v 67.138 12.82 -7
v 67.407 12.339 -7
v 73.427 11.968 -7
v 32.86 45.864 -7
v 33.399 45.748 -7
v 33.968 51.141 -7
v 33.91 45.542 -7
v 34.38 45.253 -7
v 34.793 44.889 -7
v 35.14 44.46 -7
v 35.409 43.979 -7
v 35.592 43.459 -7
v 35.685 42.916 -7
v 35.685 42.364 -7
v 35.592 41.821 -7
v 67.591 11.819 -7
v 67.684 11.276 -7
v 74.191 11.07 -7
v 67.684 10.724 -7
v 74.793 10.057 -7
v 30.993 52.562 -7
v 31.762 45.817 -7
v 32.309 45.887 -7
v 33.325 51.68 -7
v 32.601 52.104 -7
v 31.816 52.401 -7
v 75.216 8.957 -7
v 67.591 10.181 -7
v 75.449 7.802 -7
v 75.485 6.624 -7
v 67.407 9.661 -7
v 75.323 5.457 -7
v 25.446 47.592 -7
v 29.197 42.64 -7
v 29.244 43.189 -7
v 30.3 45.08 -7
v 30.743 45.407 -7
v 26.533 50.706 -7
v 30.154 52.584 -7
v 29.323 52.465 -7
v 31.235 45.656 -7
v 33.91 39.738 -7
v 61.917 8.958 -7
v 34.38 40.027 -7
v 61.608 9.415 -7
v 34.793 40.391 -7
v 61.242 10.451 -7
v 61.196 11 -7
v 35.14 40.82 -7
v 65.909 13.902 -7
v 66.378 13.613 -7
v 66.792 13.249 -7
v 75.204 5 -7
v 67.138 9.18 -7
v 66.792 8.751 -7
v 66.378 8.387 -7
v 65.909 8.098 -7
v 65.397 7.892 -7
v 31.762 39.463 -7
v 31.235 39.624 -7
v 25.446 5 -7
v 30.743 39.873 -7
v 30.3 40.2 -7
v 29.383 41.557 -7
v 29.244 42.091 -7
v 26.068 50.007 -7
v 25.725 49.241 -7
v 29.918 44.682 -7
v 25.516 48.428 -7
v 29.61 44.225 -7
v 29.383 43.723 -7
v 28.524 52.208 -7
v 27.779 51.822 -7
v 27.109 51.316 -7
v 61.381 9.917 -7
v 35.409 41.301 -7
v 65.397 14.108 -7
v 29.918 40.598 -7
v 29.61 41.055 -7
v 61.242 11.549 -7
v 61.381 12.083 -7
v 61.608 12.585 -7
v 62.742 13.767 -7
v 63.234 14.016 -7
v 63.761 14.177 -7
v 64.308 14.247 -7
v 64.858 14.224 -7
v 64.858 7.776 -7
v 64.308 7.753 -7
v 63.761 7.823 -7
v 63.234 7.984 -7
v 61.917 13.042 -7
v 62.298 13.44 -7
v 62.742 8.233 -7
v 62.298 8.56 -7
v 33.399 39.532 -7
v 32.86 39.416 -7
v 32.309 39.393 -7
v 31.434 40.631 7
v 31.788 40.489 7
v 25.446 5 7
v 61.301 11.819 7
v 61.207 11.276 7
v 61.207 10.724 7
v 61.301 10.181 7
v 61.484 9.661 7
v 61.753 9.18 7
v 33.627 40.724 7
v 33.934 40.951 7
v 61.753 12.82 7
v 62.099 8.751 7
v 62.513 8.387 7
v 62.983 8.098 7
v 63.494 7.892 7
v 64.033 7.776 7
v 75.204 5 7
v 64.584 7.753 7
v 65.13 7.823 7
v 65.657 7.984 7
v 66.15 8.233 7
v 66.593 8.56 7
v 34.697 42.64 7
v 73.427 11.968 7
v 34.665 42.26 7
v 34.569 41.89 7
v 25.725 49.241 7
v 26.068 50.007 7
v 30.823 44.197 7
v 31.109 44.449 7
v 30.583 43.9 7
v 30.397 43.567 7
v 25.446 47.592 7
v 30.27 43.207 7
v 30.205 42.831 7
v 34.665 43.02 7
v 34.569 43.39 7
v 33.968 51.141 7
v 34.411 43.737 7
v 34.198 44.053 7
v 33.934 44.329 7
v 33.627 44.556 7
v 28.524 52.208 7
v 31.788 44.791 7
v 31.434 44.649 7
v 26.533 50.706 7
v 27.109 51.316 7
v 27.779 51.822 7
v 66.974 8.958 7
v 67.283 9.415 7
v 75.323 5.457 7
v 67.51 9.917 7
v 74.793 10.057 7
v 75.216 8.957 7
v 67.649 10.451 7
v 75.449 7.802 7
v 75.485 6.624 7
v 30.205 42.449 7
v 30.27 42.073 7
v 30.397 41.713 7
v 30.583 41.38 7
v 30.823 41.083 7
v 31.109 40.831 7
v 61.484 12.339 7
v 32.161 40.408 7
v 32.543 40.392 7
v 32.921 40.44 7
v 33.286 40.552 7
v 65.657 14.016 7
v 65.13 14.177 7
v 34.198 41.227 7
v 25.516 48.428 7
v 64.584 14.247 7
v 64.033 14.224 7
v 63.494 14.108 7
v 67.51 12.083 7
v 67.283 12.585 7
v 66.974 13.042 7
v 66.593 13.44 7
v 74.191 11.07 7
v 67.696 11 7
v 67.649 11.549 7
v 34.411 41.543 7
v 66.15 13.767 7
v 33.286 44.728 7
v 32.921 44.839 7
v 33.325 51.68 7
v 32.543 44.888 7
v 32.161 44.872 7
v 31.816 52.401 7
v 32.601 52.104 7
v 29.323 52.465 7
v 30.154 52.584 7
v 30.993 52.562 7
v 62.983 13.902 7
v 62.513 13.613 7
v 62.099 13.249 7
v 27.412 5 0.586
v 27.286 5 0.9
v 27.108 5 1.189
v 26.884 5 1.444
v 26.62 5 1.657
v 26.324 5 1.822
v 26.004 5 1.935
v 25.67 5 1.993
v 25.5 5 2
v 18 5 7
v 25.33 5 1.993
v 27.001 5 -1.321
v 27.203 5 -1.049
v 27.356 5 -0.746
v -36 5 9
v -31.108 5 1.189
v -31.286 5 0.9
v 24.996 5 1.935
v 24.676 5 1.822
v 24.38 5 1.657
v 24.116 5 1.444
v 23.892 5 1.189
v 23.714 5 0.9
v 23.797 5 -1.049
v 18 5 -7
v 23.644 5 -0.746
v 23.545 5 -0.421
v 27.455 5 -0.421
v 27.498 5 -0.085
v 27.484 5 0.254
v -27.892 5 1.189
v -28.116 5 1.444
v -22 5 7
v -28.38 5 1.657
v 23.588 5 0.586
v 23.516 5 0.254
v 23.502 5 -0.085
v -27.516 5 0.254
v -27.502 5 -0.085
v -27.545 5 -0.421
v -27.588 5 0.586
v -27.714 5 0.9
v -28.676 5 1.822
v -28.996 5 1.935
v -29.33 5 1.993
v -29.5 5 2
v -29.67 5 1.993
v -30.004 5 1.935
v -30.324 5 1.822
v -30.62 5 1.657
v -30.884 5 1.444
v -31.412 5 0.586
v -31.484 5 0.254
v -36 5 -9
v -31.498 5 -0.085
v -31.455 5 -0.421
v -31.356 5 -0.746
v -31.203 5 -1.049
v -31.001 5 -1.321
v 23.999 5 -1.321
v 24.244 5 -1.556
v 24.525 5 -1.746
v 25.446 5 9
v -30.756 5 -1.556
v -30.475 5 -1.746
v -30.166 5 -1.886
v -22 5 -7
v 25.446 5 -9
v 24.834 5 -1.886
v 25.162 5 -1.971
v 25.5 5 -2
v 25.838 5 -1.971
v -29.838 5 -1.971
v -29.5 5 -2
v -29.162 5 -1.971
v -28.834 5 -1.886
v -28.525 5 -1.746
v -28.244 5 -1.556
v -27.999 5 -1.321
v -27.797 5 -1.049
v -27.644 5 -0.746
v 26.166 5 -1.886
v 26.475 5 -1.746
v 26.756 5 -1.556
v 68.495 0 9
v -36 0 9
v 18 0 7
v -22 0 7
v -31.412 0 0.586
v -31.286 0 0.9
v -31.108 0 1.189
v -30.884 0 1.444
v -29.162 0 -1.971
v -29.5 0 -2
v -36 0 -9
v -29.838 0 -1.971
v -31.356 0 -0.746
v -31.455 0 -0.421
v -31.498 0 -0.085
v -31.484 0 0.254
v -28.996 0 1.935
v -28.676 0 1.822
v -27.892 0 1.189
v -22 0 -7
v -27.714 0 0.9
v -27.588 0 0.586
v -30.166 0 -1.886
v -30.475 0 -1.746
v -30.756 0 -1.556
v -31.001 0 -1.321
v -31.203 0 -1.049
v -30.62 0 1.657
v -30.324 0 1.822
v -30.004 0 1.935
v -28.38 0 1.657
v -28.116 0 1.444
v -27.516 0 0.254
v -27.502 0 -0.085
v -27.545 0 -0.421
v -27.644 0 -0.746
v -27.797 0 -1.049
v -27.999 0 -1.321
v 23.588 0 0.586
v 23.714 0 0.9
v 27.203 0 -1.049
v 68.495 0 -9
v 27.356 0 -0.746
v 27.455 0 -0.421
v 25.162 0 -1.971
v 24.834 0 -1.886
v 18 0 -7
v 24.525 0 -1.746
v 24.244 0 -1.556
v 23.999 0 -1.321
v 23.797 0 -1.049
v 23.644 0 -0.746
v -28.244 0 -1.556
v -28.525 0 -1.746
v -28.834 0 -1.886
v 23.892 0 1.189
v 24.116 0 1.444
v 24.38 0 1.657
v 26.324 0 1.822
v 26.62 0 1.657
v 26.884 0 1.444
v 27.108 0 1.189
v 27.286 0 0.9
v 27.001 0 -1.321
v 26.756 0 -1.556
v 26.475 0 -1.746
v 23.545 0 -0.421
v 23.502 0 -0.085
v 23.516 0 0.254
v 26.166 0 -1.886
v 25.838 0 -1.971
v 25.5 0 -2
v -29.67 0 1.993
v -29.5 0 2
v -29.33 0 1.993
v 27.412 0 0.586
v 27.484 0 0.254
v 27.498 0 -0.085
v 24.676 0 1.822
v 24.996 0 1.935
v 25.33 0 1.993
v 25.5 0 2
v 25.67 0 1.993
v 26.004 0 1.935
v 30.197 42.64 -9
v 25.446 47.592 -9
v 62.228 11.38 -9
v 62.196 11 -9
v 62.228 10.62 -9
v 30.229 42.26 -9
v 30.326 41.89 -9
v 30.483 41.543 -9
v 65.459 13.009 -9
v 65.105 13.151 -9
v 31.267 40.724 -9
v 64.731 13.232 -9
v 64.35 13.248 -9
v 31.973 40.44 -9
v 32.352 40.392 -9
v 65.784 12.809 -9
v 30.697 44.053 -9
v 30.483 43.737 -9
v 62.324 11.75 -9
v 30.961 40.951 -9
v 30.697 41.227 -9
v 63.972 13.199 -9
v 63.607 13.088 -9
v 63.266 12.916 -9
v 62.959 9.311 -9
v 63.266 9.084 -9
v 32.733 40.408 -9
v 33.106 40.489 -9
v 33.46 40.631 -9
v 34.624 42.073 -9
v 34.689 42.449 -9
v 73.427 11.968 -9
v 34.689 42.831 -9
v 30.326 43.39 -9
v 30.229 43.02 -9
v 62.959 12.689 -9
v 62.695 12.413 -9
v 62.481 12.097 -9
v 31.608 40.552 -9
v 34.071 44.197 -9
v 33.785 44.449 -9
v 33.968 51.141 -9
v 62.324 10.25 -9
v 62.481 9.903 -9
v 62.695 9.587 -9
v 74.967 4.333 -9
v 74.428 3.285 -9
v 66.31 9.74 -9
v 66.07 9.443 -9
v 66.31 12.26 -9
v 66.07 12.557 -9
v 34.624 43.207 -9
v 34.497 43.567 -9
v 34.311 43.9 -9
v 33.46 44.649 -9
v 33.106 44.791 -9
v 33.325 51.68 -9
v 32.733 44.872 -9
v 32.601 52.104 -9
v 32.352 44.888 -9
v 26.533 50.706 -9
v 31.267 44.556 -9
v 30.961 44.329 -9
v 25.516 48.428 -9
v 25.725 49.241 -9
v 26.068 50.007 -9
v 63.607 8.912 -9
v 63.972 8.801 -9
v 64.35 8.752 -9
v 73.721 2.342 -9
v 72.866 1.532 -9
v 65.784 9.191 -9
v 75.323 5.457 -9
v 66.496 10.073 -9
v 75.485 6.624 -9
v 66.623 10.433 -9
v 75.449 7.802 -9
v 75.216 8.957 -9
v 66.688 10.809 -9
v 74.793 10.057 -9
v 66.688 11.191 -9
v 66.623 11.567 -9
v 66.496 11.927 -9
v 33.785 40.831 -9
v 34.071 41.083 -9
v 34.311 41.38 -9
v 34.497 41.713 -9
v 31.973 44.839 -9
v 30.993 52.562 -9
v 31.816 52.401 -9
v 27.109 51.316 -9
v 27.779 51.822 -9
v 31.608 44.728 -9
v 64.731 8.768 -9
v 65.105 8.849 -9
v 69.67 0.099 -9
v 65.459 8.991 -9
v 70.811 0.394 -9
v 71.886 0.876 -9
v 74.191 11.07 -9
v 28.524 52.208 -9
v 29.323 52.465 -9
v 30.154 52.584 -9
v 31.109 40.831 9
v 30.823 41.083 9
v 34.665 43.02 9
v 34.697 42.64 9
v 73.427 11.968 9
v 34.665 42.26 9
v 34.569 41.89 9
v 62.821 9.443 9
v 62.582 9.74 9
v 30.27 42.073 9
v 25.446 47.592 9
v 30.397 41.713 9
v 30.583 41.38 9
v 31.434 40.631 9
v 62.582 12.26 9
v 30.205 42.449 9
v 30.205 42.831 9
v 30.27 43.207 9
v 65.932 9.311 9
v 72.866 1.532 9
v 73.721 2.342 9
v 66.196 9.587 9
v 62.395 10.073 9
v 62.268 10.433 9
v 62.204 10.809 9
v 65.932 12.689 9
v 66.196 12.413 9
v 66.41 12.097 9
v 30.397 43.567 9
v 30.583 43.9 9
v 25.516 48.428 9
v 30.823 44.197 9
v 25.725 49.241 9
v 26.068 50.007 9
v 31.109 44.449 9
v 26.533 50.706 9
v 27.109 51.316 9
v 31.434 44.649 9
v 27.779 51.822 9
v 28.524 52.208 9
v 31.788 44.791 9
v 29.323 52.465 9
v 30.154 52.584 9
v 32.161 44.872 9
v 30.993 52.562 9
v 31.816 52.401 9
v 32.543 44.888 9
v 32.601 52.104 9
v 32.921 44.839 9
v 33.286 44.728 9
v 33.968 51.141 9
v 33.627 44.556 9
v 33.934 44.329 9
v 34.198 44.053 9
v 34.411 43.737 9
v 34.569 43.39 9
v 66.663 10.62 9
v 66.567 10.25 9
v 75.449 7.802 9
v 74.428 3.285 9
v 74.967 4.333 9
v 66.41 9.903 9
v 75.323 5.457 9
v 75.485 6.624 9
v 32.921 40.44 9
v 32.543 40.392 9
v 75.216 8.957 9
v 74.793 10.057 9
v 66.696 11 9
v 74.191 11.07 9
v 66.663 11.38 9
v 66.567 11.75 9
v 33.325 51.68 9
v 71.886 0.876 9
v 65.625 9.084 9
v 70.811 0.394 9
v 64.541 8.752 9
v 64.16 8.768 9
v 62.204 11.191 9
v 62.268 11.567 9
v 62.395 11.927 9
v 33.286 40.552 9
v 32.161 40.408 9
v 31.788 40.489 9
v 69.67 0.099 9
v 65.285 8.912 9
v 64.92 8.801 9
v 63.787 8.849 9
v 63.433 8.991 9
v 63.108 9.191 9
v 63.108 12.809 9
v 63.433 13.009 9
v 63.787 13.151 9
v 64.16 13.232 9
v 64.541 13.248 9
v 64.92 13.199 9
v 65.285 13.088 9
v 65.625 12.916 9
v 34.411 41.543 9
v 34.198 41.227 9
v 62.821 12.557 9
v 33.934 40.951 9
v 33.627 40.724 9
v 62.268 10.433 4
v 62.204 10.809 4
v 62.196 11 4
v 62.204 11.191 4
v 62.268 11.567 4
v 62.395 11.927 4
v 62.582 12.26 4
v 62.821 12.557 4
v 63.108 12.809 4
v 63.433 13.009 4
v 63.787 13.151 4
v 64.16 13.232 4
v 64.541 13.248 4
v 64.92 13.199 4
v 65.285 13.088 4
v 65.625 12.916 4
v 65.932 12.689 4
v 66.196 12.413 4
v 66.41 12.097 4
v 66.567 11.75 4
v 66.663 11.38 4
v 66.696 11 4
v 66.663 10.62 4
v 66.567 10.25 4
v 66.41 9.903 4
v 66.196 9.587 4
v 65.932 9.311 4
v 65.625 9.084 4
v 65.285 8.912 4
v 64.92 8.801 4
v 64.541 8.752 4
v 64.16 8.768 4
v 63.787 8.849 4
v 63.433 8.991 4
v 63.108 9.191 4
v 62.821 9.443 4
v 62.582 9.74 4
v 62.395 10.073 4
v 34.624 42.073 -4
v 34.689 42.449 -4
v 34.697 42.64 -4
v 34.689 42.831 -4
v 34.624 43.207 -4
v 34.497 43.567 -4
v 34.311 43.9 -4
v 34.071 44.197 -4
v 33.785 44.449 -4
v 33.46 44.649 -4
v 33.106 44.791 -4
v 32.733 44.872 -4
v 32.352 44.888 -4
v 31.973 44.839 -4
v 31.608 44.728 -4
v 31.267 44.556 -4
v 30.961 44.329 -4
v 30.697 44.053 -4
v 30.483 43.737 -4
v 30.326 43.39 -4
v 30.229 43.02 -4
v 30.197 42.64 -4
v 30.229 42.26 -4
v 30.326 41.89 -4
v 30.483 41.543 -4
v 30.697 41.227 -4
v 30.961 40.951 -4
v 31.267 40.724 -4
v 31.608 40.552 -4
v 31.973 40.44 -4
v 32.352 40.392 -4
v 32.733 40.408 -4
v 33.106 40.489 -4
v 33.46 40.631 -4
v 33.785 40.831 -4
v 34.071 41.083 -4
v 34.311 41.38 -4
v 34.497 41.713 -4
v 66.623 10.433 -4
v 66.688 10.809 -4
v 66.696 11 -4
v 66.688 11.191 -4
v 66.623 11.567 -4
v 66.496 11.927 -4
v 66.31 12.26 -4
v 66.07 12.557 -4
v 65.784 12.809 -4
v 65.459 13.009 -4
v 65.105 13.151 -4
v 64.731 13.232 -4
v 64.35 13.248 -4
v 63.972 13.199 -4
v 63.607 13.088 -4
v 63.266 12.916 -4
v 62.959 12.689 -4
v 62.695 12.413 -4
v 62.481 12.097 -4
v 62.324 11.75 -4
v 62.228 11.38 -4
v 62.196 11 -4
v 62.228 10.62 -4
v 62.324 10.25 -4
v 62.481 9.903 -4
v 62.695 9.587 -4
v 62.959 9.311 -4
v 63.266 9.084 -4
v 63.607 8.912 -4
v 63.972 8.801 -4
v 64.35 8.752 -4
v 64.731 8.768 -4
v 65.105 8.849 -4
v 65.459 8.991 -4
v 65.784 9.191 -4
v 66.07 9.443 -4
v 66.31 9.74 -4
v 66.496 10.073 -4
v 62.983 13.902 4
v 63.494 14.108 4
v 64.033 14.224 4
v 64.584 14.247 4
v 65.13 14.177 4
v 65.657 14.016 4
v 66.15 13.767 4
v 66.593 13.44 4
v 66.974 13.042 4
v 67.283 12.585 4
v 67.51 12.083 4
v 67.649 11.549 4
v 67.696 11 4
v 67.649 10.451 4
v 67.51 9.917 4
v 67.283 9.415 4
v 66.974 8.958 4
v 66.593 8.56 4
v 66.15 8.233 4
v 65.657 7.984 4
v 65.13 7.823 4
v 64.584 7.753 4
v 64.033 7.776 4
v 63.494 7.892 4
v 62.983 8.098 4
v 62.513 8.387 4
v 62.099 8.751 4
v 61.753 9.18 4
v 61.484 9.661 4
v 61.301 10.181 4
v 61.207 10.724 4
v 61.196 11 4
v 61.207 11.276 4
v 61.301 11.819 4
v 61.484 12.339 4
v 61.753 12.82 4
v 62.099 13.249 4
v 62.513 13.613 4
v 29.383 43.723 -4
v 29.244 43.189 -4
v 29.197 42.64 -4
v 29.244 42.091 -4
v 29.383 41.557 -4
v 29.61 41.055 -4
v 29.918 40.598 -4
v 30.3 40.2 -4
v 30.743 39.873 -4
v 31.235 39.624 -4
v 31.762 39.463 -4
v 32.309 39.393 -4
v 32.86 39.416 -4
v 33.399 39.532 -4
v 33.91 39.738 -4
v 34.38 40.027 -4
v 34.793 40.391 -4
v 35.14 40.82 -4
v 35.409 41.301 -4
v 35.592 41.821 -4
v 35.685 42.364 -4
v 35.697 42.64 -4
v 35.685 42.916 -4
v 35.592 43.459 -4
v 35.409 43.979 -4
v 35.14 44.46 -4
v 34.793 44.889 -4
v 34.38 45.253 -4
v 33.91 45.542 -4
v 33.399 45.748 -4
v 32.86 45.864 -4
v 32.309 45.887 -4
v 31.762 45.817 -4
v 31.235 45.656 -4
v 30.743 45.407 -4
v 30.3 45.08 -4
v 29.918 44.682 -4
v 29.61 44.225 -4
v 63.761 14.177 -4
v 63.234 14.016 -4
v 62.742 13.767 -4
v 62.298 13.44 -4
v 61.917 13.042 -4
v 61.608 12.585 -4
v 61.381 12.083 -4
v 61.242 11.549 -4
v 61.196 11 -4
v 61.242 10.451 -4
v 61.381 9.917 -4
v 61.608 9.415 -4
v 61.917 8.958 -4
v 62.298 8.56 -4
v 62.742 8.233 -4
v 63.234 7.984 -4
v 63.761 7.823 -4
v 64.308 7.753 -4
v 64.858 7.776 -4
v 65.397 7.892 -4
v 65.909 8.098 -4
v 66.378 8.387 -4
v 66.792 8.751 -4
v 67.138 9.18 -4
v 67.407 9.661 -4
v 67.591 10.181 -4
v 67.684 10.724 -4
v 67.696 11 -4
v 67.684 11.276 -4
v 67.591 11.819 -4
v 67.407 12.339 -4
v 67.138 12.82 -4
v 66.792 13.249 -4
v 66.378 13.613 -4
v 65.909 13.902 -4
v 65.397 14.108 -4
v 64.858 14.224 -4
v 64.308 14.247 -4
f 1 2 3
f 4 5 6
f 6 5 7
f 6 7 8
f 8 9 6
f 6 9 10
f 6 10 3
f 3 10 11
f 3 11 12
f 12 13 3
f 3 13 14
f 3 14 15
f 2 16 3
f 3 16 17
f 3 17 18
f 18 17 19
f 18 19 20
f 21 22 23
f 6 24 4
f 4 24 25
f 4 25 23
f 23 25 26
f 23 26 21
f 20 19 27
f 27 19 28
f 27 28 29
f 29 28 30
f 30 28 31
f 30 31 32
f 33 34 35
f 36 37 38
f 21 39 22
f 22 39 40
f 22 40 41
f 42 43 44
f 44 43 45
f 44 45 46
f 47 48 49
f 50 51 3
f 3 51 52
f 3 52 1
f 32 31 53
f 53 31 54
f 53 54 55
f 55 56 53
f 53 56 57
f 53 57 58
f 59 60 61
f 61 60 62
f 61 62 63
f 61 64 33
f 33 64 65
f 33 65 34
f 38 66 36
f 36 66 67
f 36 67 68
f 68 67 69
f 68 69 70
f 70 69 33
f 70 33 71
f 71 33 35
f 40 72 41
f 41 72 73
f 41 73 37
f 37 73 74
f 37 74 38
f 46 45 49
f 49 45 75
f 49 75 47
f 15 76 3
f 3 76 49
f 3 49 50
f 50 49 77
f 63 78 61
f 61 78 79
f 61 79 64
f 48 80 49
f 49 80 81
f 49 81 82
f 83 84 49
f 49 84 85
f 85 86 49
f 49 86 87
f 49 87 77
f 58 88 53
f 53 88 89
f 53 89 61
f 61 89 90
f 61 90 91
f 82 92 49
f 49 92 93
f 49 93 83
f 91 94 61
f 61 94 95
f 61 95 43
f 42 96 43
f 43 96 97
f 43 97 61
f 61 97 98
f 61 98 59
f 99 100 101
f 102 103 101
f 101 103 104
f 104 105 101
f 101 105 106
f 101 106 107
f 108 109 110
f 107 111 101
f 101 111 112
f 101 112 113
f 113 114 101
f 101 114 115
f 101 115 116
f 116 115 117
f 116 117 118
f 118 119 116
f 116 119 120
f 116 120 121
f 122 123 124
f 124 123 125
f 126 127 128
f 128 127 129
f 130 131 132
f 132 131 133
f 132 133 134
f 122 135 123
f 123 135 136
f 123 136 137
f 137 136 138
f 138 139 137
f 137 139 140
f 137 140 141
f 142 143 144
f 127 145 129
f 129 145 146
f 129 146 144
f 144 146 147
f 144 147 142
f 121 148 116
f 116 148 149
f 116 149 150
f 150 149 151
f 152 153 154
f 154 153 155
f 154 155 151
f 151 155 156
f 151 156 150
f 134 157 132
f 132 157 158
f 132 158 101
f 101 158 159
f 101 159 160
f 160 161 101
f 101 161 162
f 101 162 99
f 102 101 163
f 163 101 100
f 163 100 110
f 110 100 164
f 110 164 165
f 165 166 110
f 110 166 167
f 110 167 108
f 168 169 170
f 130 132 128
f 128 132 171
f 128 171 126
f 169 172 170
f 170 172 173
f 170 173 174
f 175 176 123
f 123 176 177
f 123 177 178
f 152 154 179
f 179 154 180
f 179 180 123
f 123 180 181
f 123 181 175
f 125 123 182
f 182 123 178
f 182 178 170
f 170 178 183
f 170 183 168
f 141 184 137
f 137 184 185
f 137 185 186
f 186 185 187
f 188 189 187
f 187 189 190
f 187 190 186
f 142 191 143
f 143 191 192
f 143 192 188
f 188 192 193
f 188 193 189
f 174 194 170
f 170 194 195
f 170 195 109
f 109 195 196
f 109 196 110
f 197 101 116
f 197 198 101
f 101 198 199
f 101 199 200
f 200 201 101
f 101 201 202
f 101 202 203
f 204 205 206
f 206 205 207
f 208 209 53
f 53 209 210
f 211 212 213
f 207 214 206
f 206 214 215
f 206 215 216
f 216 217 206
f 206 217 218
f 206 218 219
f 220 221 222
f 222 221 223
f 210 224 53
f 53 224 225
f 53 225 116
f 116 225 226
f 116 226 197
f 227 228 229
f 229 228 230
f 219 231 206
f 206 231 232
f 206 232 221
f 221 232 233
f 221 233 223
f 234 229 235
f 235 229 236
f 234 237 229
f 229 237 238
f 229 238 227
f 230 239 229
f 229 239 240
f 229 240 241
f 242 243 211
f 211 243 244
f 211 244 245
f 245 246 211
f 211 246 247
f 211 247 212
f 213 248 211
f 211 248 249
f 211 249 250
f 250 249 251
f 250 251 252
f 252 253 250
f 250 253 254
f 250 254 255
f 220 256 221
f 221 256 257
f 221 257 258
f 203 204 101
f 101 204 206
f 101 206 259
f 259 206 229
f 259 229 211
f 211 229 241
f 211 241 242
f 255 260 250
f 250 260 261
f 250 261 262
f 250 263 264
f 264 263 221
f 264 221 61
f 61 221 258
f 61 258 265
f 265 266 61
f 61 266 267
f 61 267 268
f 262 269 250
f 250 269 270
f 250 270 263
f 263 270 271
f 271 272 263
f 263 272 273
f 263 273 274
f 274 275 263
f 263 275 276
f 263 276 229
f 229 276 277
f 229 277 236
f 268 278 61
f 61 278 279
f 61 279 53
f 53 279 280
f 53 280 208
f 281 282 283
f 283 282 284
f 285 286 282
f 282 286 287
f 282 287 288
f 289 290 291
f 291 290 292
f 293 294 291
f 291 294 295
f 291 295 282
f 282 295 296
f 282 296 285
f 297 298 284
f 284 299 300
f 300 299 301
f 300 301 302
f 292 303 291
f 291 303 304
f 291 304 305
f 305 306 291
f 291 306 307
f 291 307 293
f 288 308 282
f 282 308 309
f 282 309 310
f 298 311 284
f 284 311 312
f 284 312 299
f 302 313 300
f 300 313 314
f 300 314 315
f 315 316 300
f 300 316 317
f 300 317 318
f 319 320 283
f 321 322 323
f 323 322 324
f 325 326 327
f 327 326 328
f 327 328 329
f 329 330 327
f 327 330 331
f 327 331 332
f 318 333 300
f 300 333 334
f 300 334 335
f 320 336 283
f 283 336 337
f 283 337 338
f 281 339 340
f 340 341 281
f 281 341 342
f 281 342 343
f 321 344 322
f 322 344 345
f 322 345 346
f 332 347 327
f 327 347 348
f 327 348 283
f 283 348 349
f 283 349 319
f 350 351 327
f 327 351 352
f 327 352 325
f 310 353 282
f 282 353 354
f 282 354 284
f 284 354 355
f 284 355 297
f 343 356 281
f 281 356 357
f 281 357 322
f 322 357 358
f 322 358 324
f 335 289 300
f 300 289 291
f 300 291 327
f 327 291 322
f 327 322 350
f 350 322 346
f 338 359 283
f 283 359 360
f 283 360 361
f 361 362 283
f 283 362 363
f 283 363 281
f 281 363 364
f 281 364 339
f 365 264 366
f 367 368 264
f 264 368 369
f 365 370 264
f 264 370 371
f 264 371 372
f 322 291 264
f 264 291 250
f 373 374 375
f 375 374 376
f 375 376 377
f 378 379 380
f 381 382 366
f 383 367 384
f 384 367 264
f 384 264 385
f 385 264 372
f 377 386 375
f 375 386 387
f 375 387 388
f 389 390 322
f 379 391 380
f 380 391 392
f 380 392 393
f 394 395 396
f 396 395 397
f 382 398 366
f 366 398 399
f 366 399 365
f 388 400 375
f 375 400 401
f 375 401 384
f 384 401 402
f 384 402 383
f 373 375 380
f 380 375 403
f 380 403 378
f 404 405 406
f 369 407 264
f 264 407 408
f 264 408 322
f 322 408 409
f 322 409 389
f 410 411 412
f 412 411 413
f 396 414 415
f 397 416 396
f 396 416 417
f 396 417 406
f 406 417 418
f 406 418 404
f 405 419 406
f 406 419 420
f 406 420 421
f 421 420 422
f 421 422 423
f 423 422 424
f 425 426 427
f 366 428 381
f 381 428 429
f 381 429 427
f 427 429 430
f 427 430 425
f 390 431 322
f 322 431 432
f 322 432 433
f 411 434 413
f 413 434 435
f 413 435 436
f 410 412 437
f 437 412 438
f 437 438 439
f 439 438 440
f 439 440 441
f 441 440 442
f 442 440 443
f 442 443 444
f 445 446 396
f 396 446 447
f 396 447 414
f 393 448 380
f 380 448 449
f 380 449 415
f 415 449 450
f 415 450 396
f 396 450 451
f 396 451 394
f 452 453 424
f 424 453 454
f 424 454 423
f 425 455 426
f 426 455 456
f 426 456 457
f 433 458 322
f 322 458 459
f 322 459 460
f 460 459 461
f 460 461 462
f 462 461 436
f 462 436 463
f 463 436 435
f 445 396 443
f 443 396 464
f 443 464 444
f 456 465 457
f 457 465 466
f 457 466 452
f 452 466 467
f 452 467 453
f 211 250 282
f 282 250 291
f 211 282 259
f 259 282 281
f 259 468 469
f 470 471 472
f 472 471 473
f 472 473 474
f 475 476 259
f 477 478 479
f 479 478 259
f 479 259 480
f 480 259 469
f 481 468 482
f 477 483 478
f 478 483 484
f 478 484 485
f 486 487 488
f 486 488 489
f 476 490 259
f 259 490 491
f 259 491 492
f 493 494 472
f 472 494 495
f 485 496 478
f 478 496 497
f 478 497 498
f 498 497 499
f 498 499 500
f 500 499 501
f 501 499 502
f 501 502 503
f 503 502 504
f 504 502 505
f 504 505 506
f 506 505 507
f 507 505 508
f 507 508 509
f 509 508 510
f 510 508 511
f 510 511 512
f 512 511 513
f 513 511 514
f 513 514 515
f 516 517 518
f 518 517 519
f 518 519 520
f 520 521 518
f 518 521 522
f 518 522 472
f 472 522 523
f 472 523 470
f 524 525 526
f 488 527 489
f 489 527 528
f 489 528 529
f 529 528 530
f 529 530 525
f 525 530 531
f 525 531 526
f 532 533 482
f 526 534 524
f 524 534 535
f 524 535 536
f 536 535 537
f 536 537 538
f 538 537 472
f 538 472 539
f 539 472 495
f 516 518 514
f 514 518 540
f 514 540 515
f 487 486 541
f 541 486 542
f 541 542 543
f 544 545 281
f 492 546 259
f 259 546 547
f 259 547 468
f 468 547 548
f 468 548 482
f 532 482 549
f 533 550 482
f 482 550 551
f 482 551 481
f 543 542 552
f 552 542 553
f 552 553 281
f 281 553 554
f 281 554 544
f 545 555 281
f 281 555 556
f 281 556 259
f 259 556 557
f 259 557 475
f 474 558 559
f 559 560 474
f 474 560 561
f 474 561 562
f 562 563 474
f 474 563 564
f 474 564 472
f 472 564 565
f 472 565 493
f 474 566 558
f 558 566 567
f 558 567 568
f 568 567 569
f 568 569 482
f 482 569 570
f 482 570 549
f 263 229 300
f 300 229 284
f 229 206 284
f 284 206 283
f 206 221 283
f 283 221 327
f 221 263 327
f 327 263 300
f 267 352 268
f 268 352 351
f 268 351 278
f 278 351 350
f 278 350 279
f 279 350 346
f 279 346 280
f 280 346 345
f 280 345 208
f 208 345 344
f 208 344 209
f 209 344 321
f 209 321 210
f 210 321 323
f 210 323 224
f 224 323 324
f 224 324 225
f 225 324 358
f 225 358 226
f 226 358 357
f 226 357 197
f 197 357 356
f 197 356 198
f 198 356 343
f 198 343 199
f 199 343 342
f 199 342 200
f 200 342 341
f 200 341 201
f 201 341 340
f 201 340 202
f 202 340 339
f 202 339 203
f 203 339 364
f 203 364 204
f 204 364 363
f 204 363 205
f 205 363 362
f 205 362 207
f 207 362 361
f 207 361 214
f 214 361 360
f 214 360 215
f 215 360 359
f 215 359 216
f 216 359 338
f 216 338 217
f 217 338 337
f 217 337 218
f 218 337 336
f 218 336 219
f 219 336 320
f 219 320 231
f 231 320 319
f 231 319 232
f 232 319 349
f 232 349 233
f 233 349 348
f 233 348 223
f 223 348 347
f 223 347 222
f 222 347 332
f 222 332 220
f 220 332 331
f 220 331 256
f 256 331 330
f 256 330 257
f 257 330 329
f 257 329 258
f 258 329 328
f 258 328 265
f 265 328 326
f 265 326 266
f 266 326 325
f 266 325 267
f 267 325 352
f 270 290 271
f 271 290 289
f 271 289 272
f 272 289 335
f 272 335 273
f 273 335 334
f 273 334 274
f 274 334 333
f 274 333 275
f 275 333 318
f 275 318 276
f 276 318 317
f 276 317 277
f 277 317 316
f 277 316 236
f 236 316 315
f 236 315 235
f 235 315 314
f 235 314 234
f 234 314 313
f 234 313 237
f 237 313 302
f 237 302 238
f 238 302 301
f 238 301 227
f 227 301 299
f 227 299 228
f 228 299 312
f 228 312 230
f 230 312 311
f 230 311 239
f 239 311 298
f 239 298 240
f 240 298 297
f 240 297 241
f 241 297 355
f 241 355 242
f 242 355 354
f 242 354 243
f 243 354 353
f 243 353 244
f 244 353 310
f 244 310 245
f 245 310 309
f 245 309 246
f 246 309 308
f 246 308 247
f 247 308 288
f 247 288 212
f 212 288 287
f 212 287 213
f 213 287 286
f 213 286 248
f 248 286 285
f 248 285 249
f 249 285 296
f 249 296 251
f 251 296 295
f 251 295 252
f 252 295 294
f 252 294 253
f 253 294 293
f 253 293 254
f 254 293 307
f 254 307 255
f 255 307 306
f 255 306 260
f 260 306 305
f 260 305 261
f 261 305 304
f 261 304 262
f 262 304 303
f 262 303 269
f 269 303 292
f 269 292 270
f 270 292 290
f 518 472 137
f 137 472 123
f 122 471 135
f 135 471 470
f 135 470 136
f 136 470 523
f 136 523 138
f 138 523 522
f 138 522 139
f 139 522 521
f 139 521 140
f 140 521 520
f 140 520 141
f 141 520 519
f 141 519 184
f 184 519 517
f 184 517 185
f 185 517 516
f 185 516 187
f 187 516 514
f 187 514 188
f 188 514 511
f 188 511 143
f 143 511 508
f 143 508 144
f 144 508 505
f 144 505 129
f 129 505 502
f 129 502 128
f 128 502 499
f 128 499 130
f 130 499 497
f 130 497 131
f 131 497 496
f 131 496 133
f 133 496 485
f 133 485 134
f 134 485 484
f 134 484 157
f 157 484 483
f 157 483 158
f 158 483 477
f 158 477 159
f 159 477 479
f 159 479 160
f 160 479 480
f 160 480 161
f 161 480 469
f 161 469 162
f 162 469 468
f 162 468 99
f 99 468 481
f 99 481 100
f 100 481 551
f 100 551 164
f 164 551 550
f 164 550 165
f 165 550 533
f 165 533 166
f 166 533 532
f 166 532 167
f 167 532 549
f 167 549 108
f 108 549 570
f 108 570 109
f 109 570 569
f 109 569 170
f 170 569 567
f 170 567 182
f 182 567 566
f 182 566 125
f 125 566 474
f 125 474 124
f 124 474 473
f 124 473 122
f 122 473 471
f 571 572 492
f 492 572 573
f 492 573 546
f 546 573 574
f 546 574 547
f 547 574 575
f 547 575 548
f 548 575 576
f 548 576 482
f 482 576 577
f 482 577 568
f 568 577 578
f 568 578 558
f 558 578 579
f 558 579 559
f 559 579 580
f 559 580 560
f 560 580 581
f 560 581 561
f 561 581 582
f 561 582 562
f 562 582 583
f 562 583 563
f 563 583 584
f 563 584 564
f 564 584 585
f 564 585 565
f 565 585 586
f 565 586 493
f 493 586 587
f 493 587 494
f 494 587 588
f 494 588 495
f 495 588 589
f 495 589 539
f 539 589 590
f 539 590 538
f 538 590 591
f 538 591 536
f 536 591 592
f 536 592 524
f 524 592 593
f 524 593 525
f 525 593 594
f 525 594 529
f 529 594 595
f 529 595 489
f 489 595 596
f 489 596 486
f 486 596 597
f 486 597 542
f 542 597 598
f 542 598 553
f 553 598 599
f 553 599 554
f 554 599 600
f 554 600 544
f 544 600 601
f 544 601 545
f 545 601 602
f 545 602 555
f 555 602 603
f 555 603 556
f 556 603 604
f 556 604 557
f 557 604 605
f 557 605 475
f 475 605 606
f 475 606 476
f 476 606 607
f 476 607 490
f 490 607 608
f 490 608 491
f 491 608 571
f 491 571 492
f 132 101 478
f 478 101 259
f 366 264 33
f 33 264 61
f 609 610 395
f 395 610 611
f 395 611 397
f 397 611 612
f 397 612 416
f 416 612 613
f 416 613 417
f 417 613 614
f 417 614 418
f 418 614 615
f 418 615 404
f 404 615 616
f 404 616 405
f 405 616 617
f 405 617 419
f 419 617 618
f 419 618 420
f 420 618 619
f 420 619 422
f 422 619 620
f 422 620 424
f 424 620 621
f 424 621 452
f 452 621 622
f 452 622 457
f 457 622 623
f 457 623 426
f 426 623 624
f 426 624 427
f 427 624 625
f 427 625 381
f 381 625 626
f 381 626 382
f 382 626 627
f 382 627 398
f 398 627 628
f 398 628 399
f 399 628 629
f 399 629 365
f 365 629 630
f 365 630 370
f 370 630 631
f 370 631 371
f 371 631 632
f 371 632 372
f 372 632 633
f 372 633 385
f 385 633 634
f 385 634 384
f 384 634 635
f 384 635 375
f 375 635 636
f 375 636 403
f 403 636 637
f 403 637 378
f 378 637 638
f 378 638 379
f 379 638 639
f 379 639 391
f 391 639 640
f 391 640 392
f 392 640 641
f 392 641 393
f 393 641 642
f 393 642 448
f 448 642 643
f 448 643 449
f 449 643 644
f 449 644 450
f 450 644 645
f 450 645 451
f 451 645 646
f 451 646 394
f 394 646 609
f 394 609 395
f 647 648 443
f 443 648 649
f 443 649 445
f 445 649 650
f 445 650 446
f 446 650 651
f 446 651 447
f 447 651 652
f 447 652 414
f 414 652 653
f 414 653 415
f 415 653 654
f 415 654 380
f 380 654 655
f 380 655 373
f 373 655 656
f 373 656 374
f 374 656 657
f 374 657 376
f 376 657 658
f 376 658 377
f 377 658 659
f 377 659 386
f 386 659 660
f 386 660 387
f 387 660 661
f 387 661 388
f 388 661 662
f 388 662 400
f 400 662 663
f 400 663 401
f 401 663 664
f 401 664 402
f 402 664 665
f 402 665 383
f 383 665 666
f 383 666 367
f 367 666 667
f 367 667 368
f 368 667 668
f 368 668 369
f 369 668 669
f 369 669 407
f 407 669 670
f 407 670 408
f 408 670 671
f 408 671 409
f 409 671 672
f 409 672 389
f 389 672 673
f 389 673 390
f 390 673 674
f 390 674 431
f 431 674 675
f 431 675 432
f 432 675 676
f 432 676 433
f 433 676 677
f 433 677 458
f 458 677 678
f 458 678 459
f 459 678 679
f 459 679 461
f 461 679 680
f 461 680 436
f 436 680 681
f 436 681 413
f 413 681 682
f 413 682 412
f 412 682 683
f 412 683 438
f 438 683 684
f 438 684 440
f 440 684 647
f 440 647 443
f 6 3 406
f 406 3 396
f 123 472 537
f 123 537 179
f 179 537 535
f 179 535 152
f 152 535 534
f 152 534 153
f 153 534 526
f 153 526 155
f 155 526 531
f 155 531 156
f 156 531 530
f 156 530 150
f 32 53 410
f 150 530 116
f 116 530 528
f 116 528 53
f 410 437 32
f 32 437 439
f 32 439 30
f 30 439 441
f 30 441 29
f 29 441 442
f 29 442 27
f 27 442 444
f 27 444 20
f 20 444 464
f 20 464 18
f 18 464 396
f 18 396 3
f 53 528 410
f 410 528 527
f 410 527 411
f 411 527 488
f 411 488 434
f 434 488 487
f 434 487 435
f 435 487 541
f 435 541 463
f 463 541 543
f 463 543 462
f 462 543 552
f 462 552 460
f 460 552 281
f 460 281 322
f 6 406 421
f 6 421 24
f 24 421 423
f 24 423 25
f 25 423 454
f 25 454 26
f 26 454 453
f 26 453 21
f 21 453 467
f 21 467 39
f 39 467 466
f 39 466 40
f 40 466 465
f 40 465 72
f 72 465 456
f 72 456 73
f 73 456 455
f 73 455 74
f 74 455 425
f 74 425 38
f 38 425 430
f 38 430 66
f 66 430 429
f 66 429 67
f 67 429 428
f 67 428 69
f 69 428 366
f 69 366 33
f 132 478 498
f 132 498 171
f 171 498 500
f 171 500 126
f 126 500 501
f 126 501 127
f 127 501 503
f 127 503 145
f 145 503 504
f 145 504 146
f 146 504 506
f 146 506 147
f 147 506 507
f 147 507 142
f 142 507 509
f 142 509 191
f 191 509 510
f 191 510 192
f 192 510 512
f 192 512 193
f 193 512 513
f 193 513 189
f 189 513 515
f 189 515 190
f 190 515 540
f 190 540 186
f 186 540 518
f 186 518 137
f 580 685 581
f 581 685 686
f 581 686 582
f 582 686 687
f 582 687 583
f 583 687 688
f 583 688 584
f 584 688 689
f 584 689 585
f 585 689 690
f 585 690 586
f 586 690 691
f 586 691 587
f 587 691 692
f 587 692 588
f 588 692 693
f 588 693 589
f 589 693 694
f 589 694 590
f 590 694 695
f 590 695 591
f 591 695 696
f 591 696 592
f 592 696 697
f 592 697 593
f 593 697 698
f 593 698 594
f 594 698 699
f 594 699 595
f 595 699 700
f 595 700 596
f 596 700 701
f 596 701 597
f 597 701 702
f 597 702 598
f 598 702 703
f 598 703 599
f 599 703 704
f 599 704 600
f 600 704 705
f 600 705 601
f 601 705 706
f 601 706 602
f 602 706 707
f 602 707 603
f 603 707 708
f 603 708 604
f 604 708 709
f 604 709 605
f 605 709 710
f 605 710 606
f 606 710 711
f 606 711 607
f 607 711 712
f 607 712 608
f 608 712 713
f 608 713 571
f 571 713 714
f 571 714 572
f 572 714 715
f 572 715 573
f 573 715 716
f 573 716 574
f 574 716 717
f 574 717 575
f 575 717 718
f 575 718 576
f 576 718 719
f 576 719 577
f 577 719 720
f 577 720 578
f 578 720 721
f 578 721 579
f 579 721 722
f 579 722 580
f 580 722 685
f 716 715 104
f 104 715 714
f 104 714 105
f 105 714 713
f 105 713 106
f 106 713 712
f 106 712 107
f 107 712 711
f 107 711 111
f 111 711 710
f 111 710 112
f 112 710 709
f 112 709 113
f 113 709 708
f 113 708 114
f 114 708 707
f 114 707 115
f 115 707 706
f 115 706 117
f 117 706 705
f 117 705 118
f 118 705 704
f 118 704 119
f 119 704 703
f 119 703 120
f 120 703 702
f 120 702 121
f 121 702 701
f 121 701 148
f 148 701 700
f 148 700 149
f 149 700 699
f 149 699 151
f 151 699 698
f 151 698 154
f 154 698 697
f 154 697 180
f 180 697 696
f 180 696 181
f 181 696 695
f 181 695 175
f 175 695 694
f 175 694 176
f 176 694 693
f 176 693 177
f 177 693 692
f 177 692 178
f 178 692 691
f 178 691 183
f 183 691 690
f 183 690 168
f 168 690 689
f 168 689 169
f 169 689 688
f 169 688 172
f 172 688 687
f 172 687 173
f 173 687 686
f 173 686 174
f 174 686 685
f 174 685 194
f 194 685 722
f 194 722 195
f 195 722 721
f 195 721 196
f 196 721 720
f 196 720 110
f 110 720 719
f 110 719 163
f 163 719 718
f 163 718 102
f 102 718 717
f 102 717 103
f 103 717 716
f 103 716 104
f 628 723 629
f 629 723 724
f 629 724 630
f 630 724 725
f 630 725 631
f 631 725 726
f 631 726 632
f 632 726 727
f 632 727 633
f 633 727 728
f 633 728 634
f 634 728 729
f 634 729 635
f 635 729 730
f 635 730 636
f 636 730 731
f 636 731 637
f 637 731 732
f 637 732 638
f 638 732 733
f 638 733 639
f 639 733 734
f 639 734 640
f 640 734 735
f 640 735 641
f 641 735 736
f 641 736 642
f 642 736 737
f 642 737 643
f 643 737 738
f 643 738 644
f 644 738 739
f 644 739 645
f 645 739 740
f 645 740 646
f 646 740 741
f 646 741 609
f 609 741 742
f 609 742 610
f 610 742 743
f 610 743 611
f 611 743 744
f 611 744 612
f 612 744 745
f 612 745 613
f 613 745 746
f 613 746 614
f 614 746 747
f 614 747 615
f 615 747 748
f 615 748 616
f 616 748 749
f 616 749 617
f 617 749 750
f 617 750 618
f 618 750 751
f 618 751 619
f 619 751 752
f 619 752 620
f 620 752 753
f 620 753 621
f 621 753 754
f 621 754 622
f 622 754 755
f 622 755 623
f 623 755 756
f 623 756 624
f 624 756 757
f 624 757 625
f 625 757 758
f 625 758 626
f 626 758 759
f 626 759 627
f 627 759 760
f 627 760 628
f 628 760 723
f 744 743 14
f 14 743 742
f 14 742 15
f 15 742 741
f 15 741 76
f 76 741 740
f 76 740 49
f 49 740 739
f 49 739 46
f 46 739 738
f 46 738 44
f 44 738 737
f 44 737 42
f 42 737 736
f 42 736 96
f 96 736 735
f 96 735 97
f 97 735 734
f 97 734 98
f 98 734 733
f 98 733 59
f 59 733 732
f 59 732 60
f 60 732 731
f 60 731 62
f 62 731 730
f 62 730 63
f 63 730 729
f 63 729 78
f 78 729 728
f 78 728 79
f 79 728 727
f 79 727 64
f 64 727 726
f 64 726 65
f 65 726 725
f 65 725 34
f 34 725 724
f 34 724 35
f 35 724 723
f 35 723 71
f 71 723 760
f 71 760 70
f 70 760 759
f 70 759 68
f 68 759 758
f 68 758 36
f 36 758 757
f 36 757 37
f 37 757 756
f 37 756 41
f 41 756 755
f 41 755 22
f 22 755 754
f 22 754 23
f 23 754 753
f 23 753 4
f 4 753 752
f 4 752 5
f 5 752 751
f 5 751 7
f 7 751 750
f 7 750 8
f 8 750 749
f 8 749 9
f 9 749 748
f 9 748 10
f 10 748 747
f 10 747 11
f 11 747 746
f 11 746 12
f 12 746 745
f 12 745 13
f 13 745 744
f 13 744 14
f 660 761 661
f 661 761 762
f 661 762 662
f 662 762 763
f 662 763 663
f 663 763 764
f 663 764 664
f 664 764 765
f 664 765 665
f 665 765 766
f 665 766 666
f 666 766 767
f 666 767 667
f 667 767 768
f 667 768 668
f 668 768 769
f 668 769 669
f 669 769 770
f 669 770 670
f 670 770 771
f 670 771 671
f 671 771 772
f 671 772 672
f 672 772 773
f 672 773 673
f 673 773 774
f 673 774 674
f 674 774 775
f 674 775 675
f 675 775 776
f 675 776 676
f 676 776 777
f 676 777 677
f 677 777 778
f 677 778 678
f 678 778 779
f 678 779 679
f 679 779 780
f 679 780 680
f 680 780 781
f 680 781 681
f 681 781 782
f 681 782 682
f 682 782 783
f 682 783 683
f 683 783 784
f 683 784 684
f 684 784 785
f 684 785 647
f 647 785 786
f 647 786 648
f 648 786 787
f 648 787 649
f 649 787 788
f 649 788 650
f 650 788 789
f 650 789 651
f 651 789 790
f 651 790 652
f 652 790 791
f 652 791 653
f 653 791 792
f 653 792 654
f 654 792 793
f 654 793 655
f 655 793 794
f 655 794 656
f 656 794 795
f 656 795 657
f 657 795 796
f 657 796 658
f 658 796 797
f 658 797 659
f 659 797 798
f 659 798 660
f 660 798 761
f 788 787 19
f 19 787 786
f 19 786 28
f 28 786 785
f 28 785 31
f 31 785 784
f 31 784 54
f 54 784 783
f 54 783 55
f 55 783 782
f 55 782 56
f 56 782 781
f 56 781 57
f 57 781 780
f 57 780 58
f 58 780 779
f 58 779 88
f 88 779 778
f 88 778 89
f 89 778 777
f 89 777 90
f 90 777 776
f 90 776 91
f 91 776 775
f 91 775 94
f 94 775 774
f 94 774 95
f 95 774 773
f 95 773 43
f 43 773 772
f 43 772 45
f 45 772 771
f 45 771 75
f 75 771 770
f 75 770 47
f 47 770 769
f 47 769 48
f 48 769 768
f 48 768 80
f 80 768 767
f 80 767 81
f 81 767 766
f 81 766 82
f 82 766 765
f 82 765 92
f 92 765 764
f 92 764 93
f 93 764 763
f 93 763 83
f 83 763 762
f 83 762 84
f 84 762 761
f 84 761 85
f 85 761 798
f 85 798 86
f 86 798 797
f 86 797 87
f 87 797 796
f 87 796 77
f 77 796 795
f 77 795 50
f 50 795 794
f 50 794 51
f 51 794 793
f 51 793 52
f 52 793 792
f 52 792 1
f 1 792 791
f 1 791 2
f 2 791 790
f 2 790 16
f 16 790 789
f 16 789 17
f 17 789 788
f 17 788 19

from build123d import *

# Parameters (mm, degrees)
SKETCH1_W           = 116.445688755
SKETCH1_H           = 18
SKETCH1_R           = 2
SKETCH1_W_2         = 40
SKETCH1_H_2         = 14
BOSS_EXTRUDE1_DEPTH = 5
SKETCH2_R           = 2.25
BOSS_EXTRUDE2_DEPTH = 2
BOSS_EXTRUDE3_START = -2
SKETCH4_R           = 2.25
BOSS_EXTRUDE3_DEPTH = 2
FILLET2_R           = 7
FILLET3_R           = 5
SKETCH6_R           = 3.25
SKETCH6_R_2         = 2.25
BOSS_EXTRUDE4_DEPTH = 3
BOSS_EXTRUDE5_START = 3
SKETCH7_R           = 3.25
SKETCH7_R_2         = 2.25
BOSS_EXTRUDE5_DEPTH = 3


with BuildPart() as part:
    # Sketch1 → Boss-Extrude1 (new body)
    with BuildSketch(Plane(origin=(0, 0, 0), x_dir=(1, 0, 0), z_dir=(0, 1, 0))):
        with Locations((22.222844378, 0)):
            Rectangle(SKETCH1_W, SKETCH1_H)
        with Locations(Location((-29.5, 0, 0), (0, 0, 270))):
            Circle(SKETCH1_R, mode=Mode.SUBTRACT)
        with Locations(Location((25.5, 0, 0), (0, 0, 270))):
            Circle(SKETCH1_R, mode=Mode.SUBTRACT)
        with Locations((-2, 0)):
            Rectangle(SKETCH1_W_2, SKETCH1_H_2, mode=Mode.SUBTRACT)
    extrude(amount=BOSS_EXTRUDE1_DEPTH)

    # Sketch2 → Boss-Extrude2 (add)
    # profile 1 of 2: a face of its own
    with BuildSketch(Plane.XY.offset(9)):
        Polygon((85.482180719, 0), (80.445688755, 5), (80.445688755, 0), align=None)
    # profile 2 of 2: a face of its own
    with BuildSketch(Plane.XY.offset(9)):
        Polygon((25.445687742, 59.601497833), (25.445688755, 5), (80.445688755, 5), align=None)
        with Locations((64.445688755, 11)):
            Circle(SKETCH2_R, mode=Mode.SUBTRACT)
        with Locations((32.447088786, 42.64)):
            Circle(SKETCH2_R, mode=Mode.SUBTRACT)
    extrude(amount=-BOSS_EXTRUDE2_DEPTH)

    # Sketch4 → Boss-Extrude3 (add)
    # profile 1 of 2: a face of its own
    with BuildSketch(Plane(origin=(0, 0, -9), x_dir=(-1, 0, 0), z_dir=(0, 0, -1)).offset(BOSS_EXTRUDE3_START)):
        Polygon((-25.445687742, 59.601497833), (-80.445688755, 5), (-25.445687742, 5), align=None)
        with Locations(Location((-64.445688755, 11, 0), (0, 0, 180))):
            Circle(SKETCH4_R, mode=Mode.SUBTRACT)
        with Locations(Location((-32.447088786, 42.64, 0), (0, 0, 180))):
            Circle(SKETCH4_R, mode=Mode.SUBTRACT)
    # profile 2 of 2: a face of its own
    with BuildSketch(Plane(origin=(0, 0, -9), x_dir=(-1, 0, 0), z_dir=(0, 0, -1)).offset(BOSS_EXTRUDE3_START)):
        Polygon((-80.445688755, 5), (-85.482180719, 0), (-80.445688755, 0), align=None)
    extrude(amount=BOSS_EXTRUDE3_DEPTH)

    # Fillet2
    # the kernel refuses this fillet: 7 mm, written as the material it takes off along each edge
    with BuildSketch(Plane(origin=(85.482180719, 0, 35.466936405), x_dir=(-1, 0, 0), z_dir=(0, 0, -1))) as fillet2_piece_1:
        with BuildLine():
            CenterArc((FILLET2_R * 2.42668208026, FILLET2_R), FILLET2_R, 134.791677578, 135.208322422)
            Line((FILLET2_R * 1.72215094548, FILLET2_R * 1.70967307975), (0, 0))
            Line((0, 0), (FILLET2_R * 2.42668208026, 0))
        make_face()
    extrude(amount=86.933872809, mode=Mode.SUBTRACT)

    # Fillet3
    fillet3_edges = [part.edges().sort_by_distance(p)[0] for p in [
        (25.445687742, 59.601497833, 8),
        (25.445687742, 59.601497833, -8),
    ]]
    fillet(fillet3_edges, radius=FILLET3_R)

    # Sketch6 → Boss-Extrude4 (add)
    with BuildSketch(Plane(origin=(0, 0, 7), x_dir=(-1, 0, 0), z_dir=(0, 0, -1))):
        with Locations(Location((-64.445688755, 11, 0), (0, 0, 180))):
            Circle(SKETCH6_R)
        with Locations(Location((-64.445688755, 11, 0), (0, 0, 180))):
            Circle(SKETCH6_R_2, mode=Mode.SUBTRACT)
    extrude(amount=BOSS_EXTRUDE4_DEPTH)

    # Sketch7 → Boss-Extrude5 (add)
    # profile 1 of 2: a face of its own
    with BuildSketch(Plane.XY.offset(-7).offset(BOSS_EXTRUDE5_START)):
        with Locations(Location((32.447088786, 42.64, 0), (0, 0, 180))):
            Circle(SKETCH7_R)
        with Locations((32.447088786, 42.64)):
            Circle(SKETCH7_R_2, mode=Mode.SUBTRACT)
    # profile 2 of 2: a face of its own
    with BuildSketch(Plane.XY.offset(-7).offset(BOSS_EXTRUDE5_START)):
        with Locations((64.445688755, 11)):
            Circle(SKETCH7_R)
        with Locations((64.445688755, 11)):
            Circle(SKETCH7_R_2, mode=Mode.SUBTRACT)
    extrude(amount=-BOSS_EXTRUDE5_DEPTH)


solid = part.part
